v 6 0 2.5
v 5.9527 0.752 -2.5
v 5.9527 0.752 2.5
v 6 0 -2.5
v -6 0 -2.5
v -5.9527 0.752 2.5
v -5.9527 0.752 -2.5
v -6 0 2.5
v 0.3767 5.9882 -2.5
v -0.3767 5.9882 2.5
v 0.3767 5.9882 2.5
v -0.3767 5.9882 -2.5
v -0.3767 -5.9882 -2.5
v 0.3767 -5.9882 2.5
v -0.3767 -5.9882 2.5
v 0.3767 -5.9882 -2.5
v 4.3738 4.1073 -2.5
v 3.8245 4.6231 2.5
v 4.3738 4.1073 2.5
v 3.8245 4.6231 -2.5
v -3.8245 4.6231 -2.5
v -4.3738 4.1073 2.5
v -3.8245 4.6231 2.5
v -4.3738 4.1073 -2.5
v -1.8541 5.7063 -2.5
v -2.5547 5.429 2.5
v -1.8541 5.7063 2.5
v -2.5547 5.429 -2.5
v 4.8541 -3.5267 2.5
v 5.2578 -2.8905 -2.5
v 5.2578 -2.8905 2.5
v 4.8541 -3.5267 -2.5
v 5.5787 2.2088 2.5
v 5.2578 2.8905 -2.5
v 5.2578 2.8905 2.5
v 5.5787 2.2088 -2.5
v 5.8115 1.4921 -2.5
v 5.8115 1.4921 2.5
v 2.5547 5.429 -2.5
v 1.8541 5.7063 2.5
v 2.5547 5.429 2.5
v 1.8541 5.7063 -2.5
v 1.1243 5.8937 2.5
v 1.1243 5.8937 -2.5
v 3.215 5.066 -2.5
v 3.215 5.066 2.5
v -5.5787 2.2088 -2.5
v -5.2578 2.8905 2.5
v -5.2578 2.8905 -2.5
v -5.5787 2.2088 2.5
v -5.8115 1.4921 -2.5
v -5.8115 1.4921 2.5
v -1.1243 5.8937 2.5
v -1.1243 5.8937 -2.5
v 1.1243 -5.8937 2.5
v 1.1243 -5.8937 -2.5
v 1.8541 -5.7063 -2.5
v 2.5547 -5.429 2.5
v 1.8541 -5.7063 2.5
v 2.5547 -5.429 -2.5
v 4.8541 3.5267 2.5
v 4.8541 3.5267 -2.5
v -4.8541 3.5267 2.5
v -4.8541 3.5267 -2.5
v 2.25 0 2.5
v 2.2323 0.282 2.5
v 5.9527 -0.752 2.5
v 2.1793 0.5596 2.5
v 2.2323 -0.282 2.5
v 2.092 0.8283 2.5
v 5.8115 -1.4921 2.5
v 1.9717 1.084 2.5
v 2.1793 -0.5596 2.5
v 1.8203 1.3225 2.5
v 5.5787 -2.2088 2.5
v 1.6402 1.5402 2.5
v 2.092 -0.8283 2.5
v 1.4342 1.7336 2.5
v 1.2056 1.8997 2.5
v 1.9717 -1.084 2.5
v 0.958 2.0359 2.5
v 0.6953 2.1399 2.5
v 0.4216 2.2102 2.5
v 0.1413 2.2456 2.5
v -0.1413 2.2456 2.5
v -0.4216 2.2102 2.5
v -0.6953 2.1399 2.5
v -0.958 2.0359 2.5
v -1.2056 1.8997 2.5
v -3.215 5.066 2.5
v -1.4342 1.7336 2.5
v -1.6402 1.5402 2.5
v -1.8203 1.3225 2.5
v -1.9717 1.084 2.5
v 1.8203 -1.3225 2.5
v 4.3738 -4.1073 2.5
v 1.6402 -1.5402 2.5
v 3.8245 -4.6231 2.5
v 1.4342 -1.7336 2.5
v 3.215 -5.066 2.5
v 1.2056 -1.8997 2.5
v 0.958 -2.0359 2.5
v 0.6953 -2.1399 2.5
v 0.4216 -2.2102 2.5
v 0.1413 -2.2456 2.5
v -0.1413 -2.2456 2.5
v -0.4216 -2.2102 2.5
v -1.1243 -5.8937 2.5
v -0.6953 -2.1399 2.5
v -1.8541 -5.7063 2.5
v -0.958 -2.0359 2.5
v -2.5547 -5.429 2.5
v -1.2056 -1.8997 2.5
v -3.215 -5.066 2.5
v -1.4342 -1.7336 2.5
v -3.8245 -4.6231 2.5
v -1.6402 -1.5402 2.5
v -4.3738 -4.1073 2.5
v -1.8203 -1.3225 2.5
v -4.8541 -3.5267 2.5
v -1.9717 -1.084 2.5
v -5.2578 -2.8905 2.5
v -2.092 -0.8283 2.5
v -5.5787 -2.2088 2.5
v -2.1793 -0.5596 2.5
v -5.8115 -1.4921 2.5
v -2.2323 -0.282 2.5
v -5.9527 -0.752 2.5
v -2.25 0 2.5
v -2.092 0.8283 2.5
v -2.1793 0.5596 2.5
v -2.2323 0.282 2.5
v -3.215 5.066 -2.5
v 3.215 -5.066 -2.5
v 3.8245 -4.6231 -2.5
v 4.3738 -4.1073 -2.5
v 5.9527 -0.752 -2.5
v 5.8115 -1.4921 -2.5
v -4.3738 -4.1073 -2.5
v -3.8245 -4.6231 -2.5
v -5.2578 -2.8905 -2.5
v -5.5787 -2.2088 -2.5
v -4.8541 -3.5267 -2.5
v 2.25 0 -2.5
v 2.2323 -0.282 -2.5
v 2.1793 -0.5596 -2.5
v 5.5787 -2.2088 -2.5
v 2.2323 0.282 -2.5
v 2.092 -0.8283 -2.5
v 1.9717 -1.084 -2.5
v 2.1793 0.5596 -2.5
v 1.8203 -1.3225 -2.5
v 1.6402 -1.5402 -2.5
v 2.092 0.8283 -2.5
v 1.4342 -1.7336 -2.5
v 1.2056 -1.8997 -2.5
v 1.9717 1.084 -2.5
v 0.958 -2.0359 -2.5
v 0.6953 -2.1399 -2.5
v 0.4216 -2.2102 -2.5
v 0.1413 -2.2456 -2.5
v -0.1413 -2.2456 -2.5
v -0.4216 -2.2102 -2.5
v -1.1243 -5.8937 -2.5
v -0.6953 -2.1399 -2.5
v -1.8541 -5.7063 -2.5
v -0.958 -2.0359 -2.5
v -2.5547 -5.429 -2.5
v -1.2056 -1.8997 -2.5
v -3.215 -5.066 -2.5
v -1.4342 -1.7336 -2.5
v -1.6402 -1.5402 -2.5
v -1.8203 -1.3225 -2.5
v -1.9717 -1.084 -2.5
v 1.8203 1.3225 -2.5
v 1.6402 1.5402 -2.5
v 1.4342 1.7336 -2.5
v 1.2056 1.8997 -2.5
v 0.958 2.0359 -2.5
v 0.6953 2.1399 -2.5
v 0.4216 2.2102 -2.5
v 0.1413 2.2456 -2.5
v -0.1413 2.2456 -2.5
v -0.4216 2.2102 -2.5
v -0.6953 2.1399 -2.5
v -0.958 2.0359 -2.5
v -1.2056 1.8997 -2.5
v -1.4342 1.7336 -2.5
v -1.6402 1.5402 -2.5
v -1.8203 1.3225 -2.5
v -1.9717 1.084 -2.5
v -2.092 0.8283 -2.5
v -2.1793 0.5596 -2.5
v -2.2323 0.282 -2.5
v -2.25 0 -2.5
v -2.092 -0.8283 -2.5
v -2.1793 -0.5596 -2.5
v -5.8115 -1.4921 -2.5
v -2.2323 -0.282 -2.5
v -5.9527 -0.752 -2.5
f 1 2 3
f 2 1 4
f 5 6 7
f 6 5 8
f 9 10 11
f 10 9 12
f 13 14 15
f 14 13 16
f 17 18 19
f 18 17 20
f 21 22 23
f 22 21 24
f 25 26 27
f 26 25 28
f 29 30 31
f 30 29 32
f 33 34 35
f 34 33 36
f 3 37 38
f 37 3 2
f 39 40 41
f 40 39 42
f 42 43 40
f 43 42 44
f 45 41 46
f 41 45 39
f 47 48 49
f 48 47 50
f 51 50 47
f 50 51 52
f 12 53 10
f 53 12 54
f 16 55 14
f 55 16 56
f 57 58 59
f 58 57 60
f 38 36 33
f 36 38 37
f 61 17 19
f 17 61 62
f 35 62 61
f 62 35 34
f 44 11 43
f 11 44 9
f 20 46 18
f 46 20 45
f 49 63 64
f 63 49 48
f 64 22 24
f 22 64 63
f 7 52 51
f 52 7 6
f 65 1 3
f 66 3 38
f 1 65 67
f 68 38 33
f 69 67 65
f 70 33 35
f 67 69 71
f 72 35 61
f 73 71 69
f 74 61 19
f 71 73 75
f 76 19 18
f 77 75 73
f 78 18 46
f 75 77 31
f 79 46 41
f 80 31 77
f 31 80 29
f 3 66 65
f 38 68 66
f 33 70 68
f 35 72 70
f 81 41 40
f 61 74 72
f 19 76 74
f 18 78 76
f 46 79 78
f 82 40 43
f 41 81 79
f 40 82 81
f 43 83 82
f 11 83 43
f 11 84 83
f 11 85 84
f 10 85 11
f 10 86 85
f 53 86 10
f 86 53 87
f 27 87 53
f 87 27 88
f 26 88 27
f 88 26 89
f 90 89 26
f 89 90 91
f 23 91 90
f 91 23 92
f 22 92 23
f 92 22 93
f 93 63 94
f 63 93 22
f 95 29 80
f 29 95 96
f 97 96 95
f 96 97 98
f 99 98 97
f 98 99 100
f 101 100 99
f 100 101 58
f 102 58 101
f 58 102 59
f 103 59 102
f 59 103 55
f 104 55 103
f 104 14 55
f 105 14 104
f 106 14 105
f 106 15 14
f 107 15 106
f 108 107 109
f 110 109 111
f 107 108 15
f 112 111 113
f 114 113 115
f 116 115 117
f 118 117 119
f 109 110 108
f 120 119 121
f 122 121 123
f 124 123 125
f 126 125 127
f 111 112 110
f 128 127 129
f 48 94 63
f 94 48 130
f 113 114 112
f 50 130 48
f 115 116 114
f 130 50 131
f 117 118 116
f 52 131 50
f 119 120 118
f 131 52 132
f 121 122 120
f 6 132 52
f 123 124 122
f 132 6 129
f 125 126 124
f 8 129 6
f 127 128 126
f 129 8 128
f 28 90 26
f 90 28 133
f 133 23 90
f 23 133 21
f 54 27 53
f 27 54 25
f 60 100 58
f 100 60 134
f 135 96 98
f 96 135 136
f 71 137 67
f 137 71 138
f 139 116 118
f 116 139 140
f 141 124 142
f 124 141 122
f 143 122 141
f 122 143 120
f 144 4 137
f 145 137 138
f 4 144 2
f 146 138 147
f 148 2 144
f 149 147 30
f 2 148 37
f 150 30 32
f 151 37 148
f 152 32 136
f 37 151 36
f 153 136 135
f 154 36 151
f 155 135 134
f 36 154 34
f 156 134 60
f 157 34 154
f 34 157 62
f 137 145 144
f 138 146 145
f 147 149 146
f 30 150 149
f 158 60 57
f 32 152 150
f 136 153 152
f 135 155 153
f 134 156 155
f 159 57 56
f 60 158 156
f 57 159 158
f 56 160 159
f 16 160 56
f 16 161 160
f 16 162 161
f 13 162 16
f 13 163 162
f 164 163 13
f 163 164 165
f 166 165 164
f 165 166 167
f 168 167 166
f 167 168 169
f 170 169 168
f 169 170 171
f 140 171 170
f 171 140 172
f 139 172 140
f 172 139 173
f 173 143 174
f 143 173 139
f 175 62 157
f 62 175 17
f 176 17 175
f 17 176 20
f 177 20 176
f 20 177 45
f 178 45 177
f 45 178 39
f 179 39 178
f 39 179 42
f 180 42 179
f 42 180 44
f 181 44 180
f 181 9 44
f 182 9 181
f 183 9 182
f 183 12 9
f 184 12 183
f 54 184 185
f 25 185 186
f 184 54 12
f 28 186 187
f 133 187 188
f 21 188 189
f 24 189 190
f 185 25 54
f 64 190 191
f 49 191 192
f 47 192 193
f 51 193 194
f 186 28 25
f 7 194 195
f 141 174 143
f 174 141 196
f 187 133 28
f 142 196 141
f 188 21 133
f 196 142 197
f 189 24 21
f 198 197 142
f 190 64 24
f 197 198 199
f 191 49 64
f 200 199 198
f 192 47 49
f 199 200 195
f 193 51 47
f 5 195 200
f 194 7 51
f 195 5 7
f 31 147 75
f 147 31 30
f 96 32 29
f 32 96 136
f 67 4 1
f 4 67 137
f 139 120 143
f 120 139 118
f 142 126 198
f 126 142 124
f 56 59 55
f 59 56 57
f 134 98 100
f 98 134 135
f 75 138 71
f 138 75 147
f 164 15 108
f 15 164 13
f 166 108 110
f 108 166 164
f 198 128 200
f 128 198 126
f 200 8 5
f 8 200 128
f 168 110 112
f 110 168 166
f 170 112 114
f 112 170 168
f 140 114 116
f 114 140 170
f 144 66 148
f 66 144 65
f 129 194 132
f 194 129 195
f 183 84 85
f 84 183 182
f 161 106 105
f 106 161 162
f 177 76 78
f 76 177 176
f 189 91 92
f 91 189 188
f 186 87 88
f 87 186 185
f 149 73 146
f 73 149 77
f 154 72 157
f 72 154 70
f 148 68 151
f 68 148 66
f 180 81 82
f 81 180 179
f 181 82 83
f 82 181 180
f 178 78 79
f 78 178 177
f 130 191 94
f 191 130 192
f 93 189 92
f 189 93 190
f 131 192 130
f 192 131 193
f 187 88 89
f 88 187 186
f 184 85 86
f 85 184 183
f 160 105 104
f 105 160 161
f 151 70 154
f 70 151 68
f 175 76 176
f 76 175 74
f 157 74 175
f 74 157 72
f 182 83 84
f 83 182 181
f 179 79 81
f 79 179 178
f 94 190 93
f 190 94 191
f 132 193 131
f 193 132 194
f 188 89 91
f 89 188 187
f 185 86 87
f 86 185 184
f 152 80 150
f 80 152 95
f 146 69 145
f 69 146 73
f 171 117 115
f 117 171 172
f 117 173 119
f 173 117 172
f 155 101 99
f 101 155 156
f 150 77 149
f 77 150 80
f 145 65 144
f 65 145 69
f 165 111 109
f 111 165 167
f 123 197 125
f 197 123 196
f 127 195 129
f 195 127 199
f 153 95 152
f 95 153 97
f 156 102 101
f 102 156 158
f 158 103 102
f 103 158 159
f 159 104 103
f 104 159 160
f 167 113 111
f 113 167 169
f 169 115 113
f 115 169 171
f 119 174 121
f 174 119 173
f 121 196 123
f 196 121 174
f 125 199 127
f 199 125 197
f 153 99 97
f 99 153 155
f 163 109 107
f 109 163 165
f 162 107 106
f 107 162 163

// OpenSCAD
$fn = 50;


difference() {
	union() {
		translate(v = [0, 0, -2.5000000000]) {
			cylinder(h = 5, r = 6.0000000000);
		}
	}
	union() {
		translate(v = [0, 0, -100.0000000000]) {
			cylinder(h = 200, r = 2.2500000000);
		}
	}
}
